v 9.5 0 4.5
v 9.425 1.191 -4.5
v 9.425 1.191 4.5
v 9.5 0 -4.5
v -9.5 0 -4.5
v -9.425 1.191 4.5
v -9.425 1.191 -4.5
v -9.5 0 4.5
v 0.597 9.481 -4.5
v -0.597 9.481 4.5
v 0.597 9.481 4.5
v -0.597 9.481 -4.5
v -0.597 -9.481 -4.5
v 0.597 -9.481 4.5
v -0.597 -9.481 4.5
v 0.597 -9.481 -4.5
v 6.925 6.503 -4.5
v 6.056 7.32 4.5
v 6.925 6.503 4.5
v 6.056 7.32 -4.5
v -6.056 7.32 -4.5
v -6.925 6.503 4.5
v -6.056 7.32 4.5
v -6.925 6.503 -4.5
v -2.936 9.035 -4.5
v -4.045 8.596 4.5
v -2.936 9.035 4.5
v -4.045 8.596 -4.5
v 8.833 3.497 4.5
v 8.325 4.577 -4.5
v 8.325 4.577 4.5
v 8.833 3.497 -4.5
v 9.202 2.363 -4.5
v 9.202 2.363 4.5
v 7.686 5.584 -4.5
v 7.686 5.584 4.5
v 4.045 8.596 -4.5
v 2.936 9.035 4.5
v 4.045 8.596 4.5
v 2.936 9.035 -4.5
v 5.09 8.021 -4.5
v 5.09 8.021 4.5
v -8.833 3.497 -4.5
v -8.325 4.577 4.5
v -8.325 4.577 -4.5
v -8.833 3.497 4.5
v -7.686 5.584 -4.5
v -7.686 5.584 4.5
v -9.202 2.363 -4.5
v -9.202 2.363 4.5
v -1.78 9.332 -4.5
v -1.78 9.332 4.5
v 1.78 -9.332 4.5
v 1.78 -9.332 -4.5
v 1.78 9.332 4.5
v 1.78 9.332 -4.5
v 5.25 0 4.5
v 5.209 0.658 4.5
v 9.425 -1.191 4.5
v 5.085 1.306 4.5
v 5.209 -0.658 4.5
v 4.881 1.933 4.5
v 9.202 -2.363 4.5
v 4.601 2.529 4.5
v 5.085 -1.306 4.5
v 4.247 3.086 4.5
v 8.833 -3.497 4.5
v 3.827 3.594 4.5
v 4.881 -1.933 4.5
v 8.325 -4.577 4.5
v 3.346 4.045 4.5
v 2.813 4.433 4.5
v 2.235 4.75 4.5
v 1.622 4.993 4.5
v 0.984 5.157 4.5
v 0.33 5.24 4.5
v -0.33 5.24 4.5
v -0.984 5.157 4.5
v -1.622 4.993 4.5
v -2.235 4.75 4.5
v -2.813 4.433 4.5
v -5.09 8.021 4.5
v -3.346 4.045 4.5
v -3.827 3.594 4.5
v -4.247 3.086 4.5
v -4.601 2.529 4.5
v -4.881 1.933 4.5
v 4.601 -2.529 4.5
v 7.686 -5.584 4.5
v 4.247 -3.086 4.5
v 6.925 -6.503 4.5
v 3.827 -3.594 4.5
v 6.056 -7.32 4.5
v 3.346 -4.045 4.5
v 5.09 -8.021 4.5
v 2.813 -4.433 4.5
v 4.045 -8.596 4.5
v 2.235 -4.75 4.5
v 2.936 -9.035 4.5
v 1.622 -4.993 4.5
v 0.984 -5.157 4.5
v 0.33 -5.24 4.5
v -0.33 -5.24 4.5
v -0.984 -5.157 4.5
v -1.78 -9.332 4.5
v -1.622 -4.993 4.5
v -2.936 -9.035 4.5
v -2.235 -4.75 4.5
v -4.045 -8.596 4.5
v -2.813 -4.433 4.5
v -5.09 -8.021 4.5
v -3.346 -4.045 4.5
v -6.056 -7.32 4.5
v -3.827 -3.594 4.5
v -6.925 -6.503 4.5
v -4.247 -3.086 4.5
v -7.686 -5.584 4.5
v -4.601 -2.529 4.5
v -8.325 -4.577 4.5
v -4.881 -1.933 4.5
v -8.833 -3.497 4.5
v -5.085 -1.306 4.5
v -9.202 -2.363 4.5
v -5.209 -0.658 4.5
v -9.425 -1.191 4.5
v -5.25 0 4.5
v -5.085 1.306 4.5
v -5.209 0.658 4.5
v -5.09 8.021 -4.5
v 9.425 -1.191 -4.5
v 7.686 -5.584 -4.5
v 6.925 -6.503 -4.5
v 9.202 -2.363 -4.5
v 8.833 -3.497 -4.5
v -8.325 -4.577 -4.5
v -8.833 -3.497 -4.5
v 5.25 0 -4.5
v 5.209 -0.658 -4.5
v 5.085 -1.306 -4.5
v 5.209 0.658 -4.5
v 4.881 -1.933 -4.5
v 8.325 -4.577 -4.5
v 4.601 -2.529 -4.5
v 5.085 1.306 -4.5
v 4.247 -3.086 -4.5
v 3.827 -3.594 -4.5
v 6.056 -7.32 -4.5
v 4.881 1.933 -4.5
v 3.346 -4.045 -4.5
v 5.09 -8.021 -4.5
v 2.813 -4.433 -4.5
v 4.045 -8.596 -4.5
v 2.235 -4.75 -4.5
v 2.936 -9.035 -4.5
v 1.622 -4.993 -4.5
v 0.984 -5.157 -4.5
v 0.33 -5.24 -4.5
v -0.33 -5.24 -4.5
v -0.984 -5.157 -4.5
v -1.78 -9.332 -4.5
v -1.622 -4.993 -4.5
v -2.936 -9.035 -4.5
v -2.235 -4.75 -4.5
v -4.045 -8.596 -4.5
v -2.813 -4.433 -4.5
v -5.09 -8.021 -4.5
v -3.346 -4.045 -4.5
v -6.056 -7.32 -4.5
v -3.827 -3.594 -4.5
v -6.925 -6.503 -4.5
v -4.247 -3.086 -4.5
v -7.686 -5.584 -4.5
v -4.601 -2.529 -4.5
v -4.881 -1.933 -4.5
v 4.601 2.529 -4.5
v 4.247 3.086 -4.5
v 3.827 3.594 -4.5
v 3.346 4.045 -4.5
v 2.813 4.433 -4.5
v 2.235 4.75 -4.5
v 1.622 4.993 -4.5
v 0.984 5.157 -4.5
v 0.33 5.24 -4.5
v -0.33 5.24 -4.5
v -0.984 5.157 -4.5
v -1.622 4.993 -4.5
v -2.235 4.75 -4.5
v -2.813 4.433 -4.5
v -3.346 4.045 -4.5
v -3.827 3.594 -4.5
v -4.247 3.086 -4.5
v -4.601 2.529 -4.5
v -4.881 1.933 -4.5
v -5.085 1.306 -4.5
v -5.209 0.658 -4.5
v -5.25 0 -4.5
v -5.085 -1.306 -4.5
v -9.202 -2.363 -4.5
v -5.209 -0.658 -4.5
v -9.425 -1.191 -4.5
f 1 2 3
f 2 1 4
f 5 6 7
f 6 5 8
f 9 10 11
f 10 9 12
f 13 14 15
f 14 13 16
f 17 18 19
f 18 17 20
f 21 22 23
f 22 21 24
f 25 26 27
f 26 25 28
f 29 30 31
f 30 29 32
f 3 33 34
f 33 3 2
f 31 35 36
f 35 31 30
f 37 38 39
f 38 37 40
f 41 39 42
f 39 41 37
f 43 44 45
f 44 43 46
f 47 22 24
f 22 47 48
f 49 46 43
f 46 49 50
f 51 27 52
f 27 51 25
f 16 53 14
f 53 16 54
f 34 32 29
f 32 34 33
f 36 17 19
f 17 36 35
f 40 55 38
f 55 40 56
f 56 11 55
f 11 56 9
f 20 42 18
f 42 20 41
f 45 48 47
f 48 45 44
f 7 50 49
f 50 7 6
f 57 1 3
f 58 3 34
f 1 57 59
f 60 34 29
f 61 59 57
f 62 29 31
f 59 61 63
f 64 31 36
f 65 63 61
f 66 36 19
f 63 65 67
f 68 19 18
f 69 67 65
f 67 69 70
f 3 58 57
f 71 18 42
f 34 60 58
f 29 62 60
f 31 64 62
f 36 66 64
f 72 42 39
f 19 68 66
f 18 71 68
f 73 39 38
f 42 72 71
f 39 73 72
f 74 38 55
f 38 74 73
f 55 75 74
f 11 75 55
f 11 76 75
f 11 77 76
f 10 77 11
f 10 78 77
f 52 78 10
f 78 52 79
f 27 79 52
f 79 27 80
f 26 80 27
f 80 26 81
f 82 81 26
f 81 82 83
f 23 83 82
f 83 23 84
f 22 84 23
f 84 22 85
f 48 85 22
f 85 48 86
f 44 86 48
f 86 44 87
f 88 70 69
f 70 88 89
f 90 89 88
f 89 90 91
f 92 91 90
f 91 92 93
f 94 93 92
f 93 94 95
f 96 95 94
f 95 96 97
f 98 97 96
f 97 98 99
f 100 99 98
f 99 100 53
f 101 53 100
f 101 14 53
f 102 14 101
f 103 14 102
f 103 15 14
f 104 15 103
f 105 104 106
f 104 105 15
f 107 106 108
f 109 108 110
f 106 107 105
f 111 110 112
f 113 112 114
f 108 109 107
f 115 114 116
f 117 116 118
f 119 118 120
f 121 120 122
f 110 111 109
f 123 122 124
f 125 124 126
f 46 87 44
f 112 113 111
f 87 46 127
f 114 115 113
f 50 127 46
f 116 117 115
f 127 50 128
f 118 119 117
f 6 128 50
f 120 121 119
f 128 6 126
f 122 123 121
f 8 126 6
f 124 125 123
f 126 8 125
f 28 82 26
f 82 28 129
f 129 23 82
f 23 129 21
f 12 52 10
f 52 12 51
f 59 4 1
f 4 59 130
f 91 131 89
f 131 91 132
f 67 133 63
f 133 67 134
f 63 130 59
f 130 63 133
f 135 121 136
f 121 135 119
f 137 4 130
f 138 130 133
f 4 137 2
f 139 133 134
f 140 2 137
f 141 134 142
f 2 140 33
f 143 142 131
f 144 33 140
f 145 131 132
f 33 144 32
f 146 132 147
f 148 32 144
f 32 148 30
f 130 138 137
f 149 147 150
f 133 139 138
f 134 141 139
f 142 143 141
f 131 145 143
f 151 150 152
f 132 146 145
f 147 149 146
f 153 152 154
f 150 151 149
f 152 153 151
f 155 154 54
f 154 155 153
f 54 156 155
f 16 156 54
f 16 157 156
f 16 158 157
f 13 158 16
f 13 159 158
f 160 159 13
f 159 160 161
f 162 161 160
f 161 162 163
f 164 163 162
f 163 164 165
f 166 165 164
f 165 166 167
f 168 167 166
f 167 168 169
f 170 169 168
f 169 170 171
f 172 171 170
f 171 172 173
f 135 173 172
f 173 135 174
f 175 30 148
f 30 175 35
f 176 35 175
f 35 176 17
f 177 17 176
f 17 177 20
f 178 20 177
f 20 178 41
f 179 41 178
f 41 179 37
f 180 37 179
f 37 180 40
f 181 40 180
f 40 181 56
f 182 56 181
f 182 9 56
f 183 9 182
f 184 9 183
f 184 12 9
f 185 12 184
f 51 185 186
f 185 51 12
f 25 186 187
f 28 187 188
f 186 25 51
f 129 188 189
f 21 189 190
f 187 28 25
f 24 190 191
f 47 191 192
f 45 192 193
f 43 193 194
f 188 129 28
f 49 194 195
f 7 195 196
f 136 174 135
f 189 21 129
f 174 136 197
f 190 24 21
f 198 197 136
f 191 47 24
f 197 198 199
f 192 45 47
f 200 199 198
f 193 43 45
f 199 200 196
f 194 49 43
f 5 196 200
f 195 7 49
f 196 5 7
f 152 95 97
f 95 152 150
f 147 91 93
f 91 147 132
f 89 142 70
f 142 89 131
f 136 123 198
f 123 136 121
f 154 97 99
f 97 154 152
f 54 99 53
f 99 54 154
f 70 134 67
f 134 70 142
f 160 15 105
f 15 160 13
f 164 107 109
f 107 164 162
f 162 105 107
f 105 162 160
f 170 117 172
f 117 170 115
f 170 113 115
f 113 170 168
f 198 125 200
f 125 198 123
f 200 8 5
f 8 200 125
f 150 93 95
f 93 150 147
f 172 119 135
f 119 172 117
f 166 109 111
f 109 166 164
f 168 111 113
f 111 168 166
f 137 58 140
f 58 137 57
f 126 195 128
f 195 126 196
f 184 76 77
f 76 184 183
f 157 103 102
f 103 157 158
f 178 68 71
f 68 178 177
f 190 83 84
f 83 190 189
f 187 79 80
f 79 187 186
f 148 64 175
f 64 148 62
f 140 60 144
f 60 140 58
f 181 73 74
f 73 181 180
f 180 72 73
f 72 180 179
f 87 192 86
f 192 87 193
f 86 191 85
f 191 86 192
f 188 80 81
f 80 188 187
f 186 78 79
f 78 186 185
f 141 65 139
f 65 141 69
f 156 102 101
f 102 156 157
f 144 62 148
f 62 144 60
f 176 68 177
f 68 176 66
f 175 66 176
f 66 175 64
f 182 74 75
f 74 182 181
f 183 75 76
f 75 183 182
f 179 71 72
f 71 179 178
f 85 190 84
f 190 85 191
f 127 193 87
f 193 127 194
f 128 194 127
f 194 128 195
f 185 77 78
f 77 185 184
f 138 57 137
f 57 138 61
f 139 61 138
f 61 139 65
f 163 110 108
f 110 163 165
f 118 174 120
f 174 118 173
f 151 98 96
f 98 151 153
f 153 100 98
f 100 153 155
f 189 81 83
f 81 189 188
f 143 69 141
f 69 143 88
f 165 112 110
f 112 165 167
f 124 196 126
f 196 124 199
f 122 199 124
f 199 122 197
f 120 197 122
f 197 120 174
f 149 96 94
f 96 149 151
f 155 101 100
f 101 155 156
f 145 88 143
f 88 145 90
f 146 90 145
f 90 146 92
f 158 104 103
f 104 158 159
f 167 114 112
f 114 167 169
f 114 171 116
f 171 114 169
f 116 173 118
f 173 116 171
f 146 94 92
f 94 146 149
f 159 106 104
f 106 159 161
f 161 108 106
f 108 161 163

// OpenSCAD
$fn = 50;


difference() {
	union() {
		translate(v = [0, 0, -4.5000000000]) {
			cylinder(h = 9, r = 9.5000000000);
		}
	}
	union() {
		translate(v = [0, 0, -100.0000000000]) {
			cylinder(h = 200, r = 5.2500000000);
		}
	}
}
